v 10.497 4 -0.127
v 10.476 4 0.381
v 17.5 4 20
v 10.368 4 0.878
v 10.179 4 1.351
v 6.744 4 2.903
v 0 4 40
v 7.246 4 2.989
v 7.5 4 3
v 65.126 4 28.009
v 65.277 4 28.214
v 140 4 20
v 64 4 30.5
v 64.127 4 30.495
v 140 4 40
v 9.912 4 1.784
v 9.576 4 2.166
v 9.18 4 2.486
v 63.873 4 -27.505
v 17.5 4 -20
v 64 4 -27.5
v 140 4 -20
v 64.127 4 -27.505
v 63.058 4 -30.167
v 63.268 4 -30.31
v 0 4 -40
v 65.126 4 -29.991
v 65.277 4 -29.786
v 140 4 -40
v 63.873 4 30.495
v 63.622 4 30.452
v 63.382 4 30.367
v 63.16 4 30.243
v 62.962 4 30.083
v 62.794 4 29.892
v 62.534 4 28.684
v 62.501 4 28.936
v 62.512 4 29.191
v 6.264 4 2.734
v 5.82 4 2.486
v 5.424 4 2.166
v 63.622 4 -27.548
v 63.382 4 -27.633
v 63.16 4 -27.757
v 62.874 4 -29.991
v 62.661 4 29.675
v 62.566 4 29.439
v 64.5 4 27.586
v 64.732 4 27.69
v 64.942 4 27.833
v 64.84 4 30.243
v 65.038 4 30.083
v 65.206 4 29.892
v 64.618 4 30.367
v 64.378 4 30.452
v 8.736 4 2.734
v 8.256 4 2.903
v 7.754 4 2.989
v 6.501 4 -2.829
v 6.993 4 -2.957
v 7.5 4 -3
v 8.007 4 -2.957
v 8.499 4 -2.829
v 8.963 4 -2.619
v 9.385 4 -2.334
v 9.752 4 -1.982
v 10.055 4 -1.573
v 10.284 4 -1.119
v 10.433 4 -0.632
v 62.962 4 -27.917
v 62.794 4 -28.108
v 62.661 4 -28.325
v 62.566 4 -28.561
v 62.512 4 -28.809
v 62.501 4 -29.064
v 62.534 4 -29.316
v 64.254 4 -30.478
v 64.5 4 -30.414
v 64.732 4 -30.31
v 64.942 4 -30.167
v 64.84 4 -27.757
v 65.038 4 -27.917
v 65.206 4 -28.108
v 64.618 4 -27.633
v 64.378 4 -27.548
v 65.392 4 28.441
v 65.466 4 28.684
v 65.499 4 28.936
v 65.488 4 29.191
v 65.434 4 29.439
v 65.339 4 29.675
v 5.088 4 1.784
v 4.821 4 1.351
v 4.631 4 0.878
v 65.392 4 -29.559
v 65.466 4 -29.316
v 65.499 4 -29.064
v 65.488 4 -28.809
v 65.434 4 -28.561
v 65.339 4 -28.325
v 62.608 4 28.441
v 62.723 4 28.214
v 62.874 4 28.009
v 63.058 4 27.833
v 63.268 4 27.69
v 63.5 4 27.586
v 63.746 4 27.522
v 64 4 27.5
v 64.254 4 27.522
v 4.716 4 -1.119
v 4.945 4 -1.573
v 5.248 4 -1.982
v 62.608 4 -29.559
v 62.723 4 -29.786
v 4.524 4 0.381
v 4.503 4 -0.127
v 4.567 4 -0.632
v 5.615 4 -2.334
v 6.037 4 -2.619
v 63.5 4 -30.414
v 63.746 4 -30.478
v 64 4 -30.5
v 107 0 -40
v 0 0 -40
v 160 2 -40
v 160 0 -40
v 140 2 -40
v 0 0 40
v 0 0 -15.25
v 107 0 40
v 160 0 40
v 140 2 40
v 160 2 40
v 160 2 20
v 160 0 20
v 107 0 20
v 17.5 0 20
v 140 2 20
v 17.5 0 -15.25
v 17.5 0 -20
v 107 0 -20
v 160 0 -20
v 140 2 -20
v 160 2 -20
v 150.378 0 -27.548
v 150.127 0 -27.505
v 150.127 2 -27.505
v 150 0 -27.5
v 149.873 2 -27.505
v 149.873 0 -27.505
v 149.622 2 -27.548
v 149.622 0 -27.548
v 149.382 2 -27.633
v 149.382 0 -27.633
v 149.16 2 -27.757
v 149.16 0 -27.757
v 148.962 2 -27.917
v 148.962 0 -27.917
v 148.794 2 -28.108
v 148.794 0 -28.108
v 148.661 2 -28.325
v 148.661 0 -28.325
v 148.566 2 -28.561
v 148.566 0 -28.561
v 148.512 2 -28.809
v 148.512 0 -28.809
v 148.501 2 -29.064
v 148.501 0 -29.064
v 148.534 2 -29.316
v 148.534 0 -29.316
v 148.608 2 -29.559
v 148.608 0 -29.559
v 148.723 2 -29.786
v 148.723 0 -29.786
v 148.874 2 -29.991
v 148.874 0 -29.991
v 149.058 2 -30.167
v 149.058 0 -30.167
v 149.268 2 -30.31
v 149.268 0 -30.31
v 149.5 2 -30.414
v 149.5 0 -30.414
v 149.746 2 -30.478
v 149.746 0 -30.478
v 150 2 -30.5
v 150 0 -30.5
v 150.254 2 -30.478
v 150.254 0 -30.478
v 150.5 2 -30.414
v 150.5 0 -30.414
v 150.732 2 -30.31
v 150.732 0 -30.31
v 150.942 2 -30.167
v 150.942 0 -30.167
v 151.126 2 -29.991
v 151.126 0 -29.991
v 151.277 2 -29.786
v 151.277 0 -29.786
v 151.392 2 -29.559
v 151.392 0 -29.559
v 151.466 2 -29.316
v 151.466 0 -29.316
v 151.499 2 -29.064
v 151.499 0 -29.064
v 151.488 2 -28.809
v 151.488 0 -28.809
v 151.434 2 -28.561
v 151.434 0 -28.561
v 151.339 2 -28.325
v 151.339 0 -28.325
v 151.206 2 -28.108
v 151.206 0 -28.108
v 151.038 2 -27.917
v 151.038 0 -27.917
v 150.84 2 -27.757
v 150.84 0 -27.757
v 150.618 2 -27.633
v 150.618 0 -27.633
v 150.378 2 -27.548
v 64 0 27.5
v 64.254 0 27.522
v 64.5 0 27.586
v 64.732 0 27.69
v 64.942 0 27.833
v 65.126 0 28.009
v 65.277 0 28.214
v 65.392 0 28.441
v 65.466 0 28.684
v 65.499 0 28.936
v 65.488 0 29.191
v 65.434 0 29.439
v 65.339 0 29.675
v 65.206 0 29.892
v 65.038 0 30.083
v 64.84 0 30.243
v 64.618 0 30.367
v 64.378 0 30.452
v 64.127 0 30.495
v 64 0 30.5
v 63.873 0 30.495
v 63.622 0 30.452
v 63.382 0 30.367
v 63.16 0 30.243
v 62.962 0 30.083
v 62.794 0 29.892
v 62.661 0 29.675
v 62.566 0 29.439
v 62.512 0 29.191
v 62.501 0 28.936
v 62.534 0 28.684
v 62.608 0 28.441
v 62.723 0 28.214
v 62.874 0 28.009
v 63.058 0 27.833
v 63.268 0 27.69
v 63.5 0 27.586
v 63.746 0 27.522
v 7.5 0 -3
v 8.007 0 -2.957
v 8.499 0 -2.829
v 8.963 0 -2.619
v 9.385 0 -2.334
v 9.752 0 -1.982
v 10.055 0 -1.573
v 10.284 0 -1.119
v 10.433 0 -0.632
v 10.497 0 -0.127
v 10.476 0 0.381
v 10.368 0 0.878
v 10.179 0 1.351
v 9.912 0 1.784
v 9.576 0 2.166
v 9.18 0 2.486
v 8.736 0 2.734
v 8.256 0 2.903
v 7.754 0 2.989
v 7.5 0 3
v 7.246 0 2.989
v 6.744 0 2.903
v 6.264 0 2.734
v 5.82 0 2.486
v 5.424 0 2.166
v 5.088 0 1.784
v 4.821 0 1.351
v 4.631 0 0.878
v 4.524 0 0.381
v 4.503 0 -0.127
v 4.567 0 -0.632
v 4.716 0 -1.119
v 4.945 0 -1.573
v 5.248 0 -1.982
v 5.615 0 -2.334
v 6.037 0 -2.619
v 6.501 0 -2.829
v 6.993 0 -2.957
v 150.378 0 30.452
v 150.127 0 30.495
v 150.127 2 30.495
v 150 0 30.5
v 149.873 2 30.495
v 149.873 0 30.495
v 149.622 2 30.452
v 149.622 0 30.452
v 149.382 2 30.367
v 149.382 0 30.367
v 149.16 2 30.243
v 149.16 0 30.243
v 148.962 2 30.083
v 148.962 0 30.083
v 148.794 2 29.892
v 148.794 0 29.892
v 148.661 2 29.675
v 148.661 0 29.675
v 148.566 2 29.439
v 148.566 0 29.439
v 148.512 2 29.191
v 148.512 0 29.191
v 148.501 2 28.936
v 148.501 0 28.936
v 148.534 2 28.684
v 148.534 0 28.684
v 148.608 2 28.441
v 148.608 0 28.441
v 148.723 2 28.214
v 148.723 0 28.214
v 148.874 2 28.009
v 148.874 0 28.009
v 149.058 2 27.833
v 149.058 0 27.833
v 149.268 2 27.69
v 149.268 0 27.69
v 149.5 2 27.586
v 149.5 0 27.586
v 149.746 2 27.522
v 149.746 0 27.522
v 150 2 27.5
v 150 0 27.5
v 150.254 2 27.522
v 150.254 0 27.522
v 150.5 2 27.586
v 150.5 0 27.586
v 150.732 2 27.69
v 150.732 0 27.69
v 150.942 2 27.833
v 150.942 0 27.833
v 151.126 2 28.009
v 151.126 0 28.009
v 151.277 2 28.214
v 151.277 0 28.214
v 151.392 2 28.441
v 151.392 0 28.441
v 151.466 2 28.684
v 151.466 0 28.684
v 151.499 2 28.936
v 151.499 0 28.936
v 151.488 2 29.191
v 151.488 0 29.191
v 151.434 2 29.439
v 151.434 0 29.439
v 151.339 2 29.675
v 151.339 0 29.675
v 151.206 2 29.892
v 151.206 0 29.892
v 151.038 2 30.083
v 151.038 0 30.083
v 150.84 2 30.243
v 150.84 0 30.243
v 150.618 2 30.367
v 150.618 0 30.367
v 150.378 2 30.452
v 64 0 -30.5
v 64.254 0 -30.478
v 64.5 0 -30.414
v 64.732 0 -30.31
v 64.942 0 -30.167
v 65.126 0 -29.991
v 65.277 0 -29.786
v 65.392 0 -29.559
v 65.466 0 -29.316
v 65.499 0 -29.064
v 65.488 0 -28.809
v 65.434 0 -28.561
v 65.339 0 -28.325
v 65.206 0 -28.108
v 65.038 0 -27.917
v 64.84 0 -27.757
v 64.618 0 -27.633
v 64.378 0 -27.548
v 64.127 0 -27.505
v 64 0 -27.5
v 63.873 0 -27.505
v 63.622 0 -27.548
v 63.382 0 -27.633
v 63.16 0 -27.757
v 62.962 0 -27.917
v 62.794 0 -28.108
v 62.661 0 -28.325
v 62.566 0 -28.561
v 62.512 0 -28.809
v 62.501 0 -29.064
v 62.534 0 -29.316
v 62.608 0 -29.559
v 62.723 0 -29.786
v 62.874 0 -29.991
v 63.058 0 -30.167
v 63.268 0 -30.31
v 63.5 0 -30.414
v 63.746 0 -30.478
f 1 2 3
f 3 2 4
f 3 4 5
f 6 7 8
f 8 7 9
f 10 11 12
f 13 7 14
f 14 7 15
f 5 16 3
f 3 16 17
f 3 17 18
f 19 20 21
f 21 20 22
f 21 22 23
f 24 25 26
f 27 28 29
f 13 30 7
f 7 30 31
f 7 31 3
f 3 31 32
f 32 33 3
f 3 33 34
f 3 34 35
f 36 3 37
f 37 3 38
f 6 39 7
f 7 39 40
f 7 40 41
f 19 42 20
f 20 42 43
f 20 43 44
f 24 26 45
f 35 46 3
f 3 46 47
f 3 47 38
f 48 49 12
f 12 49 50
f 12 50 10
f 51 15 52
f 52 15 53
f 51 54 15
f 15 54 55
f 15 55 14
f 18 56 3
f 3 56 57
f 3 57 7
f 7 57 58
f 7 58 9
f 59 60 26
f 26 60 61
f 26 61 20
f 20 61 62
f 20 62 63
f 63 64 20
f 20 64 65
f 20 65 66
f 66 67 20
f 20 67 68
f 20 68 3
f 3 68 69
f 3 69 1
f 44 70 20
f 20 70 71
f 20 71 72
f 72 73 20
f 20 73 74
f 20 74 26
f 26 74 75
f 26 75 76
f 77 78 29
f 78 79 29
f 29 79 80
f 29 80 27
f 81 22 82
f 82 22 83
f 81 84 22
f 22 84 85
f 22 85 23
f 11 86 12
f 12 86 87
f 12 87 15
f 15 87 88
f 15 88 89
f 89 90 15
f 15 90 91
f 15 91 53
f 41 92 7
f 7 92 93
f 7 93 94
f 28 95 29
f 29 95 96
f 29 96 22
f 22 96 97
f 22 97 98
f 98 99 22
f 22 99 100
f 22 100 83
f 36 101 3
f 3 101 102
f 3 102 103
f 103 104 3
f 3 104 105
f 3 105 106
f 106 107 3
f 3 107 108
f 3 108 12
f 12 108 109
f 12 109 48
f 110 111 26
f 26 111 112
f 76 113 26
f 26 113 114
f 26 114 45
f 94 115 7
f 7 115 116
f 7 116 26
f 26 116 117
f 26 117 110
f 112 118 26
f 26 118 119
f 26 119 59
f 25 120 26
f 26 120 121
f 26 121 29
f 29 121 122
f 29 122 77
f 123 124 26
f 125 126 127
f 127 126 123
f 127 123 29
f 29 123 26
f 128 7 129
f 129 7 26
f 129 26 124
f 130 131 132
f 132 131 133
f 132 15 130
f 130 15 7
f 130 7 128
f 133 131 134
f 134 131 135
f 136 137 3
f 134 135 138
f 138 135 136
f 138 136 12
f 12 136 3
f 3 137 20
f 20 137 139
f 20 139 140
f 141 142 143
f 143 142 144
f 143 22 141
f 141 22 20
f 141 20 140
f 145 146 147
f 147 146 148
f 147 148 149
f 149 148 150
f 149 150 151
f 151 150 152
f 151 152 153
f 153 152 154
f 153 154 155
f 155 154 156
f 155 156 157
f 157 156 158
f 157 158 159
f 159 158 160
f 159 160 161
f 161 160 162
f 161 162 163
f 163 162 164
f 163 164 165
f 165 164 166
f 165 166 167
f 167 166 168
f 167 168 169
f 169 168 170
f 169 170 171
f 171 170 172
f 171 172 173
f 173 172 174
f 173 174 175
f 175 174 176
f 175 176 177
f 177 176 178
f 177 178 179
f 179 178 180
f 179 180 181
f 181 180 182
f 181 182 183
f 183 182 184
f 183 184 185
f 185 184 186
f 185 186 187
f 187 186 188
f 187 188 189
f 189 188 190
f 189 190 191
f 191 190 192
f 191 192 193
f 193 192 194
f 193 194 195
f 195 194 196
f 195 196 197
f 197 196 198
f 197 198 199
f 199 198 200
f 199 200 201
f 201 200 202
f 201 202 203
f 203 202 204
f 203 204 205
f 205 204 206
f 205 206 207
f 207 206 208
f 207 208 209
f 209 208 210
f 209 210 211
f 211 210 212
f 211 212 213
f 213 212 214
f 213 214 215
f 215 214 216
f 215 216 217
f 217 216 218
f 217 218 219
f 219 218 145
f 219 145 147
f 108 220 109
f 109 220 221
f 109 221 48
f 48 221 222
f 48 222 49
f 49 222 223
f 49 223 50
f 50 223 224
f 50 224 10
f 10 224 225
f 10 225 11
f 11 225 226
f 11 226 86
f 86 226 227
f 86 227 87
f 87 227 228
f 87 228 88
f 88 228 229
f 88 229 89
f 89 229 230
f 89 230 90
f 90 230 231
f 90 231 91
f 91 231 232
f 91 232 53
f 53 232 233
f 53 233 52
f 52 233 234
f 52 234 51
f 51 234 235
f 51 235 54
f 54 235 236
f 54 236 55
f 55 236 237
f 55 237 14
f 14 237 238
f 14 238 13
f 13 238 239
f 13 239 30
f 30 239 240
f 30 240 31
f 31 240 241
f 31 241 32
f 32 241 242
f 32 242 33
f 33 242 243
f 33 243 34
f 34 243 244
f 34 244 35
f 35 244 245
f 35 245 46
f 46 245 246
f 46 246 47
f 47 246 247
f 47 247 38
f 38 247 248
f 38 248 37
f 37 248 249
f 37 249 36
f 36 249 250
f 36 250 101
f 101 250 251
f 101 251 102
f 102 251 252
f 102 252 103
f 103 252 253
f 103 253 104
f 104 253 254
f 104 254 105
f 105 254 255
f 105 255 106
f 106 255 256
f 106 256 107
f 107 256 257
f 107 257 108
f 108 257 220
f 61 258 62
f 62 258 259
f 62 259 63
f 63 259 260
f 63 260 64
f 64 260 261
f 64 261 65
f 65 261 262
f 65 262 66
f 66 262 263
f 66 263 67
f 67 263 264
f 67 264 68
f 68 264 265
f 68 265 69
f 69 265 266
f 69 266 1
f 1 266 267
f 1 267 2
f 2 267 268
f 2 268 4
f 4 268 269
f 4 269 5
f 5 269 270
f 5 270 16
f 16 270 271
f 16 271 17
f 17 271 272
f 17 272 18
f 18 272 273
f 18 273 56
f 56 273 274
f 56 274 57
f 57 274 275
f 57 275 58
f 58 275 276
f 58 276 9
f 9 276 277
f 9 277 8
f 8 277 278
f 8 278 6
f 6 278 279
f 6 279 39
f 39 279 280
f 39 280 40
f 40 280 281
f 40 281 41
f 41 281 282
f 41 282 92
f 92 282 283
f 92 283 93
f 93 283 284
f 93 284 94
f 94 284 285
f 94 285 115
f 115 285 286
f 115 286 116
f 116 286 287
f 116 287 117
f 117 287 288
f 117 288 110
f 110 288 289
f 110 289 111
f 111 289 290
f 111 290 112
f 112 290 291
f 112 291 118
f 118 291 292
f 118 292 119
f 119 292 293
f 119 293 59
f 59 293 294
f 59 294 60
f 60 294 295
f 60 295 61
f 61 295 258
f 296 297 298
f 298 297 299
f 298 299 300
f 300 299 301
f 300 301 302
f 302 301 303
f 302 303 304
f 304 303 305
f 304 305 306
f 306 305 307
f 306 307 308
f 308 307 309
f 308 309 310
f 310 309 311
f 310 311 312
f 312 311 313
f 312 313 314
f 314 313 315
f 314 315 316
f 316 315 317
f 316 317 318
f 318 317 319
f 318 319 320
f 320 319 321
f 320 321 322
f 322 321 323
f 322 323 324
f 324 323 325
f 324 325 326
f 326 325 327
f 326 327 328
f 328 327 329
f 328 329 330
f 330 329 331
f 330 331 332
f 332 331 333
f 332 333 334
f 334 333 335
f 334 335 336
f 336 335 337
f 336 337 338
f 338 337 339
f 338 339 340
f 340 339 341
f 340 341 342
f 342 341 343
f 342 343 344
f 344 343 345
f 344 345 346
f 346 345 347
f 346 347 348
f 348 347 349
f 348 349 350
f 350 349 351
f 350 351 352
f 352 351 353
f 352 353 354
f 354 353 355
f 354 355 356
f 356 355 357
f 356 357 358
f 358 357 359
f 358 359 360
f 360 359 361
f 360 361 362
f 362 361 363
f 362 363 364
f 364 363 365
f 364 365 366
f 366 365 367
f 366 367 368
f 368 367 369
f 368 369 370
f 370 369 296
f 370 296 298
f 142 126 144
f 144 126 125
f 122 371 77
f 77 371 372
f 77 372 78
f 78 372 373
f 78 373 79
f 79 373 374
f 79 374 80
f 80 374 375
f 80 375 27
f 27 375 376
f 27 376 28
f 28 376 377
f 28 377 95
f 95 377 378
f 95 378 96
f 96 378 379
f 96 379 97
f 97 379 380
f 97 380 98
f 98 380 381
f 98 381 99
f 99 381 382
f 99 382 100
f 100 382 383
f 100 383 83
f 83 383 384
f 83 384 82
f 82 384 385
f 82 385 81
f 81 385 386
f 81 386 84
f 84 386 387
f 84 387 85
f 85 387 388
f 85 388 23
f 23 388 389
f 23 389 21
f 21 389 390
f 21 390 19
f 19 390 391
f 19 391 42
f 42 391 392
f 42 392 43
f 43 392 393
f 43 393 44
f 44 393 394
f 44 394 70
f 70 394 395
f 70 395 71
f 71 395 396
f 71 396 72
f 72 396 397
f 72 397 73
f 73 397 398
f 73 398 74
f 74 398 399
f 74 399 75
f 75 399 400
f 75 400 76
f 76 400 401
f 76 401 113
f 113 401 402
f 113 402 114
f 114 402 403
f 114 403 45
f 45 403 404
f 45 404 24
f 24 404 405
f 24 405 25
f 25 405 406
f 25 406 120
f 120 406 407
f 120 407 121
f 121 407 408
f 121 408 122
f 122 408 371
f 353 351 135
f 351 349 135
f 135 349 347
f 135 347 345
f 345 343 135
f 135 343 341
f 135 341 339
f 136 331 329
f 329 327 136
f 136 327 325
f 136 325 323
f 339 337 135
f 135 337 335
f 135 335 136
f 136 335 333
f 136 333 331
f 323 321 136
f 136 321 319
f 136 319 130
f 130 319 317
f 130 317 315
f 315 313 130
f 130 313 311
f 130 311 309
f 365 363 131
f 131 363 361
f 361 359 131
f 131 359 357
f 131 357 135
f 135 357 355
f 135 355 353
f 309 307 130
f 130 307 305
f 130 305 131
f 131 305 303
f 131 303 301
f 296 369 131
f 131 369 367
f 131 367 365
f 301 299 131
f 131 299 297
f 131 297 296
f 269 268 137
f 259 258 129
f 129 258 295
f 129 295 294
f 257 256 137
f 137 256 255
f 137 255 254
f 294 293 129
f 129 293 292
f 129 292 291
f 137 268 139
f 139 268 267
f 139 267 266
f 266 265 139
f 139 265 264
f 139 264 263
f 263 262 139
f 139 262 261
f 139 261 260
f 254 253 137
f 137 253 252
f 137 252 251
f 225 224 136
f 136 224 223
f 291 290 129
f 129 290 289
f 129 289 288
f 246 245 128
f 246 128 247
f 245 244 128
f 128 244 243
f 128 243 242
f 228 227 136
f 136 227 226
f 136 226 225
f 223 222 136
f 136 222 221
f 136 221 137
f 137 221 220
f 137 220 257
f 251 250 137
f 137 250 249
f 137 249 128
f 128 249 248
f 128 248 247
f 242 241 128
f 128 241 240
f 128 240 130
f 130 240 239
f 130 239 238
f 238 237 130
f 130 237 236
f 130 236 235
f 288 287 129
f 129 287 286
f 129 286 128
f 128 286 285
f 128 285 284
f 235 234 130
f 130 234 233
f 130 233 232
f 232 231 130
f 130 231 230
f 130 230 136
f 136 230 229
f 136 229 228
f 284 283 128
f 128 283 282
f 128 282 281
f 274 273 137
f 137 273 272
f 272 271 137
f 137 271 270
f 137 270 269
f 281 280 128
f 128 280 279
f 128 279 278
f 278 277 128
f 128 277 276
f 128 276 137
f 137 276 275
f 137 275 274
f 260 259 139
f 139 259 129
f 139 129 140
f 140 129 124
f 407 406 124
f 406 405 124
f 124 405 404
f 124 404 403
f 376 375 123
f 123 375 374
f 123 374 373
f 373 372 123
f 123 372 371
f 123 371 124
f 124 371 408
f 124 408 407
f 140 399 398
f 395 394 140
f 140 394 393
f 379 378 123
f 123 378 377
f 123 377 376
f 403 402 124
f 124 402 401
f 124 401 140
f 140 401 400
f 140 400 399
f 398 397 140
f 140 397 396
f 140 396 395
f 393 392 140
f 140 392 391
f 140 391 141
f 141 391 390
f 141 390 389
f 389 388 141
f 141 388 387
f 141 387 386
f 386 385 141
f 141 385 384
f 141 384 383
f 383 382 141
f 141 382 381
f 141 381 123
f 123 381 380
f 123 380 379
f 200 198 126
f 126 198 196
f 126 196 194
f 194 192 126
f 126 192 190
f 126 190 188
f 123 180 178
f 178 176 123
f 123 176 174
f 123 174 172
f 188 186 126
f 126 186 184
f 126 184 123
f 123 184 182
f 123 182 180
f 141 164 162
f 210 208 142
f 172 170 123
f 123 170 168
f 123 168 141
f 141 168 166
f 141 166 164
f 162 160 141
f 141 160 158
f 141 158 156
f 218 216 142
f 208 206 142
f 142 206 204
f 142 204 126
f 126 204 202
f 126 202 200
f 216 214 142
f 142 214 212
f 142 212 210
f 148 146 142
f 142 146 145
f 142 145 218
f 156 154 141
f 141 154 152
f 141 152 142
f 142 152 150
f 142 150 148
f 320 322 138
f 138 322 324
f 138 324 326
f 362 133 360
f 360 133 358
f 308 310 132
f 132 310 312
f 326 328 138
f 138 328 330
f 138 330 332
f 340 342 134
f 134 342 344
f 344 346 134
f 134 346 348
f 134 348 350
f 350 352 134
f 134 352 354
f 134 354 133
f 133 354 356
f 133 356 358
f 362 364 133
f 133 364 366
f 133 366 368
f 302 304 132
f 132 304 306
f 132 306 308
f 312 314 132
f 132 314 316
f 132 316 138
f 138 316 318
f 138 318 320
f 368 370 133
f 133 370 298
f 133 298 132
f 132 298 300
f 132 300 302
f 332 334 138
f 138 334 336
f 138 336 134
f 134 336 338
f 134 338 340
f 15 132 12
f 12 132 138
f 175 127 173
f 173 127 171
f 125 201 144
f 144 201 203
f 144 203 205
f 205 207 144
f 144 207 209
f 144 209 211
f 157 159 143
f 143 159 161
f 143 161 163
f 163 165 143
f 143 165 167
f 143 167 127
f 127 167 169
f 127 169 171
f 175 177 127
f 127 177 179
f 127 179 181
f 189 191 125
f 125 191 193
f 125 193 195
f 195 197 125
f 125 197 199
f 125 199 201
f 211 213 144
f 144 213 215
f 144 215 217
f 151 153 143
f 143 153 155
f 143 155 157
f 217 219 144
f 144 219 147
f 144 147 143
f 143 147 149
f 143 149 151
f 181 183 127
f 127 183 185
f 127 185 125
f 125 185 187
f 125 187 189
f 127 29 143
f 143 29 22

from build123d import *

# Parameters (mm, degrees)
SKETCH1_R           = 1.5
BOSS_EXTRUDE1_DEPTH = 4
SKETCH2_W           = 20
SKETCH2_H           = 2
CUT_EXTRUDE1_DEPTH  = 20


with BuildPart() as part:
    # Sketch1 → Boss-Extrude1 (new body)
    # profile 1 of 2: a face of its own
    with BuildSketch(Plane(origin=(0, 0, 0), x_dir=(1, 0, 0), z_dir=(0, 1, 0))):
        with BuildLine():
            Line((0, 0), (0, -40))
            Line((0, -40), (160, -40))
            Line((160, -40), (160, -20))
            Line((160, -20), (17.5, -20))
            Line((17.5, -20), (17.5, 0))
            Line((17.5, 0), (10.5, 0))
            ThreePointArc((10.5, 0), (7.5, -3), (4.5, 0))
            Line((4.5, 0), (0, 0))
        make_face()
        with Locations(Location((64, -29, 0), (0, 0, 270))):
            Circle(SKETCH1_R, mode=Mode.SUBTRACT)
        with Locations(Location((150, -29, 0), (0, 0, 270))):
            Circle(SKETCH1_R, mode=Mode.SUBTRACT)
    # profile 2 of 2: a face of its own
    with BuildSketch(Plane(origin=(0, 0, 0), x_dir=(1, 0, 0), z_dir=(0, 1, 0))):
        with BuildLine():
            Line((0, 40), (0, 0))
            Line((0, 0), (4.5, 0))
            ThreePointArc((4.5, 0), (7.5, 3), (10.5, 0))
            Line((10.5, 0), (17.5, 0))
            Line((17.5, 0), (17.5, 20))
            Line((17.5, 20), (160, 20))
            Line((160, 20), (160, 40))
            Line((160, 40), (0, 40))
        make_face()
        with Locations(Location((64, 29, 0), (0, 0, 270))):
            Circle(SKETCH1_R, mode=Mode.SUBTRACT)
        with Locations(Location((150, 29, 0), (0, 0, 270))):
            Circle(SKETCH1_R, mode=Mode.SUBTRACT)
    extrude(amount=BOSS_EXTRUDE1_DEPTH)

    # Sketch2 → Cut-Extrude1 (cut)
    with BuildSketch(Plane(origin=(160, 0, 0), x_dir=(0, 0, -1), z_dir=(1, 0, 0))):
        with Locations((30, 3)):
            Rectangle(SKETCH2_W, SKETCH2_H)
        with Locations((-30, 3)):
            Rectangle(SKETCH2_W, SKETCH2_H)
    extrude(amount=-CUT_EXTRUDE1_DEPTH, mode=Mode.SUBTRACT)


solid = part.part
